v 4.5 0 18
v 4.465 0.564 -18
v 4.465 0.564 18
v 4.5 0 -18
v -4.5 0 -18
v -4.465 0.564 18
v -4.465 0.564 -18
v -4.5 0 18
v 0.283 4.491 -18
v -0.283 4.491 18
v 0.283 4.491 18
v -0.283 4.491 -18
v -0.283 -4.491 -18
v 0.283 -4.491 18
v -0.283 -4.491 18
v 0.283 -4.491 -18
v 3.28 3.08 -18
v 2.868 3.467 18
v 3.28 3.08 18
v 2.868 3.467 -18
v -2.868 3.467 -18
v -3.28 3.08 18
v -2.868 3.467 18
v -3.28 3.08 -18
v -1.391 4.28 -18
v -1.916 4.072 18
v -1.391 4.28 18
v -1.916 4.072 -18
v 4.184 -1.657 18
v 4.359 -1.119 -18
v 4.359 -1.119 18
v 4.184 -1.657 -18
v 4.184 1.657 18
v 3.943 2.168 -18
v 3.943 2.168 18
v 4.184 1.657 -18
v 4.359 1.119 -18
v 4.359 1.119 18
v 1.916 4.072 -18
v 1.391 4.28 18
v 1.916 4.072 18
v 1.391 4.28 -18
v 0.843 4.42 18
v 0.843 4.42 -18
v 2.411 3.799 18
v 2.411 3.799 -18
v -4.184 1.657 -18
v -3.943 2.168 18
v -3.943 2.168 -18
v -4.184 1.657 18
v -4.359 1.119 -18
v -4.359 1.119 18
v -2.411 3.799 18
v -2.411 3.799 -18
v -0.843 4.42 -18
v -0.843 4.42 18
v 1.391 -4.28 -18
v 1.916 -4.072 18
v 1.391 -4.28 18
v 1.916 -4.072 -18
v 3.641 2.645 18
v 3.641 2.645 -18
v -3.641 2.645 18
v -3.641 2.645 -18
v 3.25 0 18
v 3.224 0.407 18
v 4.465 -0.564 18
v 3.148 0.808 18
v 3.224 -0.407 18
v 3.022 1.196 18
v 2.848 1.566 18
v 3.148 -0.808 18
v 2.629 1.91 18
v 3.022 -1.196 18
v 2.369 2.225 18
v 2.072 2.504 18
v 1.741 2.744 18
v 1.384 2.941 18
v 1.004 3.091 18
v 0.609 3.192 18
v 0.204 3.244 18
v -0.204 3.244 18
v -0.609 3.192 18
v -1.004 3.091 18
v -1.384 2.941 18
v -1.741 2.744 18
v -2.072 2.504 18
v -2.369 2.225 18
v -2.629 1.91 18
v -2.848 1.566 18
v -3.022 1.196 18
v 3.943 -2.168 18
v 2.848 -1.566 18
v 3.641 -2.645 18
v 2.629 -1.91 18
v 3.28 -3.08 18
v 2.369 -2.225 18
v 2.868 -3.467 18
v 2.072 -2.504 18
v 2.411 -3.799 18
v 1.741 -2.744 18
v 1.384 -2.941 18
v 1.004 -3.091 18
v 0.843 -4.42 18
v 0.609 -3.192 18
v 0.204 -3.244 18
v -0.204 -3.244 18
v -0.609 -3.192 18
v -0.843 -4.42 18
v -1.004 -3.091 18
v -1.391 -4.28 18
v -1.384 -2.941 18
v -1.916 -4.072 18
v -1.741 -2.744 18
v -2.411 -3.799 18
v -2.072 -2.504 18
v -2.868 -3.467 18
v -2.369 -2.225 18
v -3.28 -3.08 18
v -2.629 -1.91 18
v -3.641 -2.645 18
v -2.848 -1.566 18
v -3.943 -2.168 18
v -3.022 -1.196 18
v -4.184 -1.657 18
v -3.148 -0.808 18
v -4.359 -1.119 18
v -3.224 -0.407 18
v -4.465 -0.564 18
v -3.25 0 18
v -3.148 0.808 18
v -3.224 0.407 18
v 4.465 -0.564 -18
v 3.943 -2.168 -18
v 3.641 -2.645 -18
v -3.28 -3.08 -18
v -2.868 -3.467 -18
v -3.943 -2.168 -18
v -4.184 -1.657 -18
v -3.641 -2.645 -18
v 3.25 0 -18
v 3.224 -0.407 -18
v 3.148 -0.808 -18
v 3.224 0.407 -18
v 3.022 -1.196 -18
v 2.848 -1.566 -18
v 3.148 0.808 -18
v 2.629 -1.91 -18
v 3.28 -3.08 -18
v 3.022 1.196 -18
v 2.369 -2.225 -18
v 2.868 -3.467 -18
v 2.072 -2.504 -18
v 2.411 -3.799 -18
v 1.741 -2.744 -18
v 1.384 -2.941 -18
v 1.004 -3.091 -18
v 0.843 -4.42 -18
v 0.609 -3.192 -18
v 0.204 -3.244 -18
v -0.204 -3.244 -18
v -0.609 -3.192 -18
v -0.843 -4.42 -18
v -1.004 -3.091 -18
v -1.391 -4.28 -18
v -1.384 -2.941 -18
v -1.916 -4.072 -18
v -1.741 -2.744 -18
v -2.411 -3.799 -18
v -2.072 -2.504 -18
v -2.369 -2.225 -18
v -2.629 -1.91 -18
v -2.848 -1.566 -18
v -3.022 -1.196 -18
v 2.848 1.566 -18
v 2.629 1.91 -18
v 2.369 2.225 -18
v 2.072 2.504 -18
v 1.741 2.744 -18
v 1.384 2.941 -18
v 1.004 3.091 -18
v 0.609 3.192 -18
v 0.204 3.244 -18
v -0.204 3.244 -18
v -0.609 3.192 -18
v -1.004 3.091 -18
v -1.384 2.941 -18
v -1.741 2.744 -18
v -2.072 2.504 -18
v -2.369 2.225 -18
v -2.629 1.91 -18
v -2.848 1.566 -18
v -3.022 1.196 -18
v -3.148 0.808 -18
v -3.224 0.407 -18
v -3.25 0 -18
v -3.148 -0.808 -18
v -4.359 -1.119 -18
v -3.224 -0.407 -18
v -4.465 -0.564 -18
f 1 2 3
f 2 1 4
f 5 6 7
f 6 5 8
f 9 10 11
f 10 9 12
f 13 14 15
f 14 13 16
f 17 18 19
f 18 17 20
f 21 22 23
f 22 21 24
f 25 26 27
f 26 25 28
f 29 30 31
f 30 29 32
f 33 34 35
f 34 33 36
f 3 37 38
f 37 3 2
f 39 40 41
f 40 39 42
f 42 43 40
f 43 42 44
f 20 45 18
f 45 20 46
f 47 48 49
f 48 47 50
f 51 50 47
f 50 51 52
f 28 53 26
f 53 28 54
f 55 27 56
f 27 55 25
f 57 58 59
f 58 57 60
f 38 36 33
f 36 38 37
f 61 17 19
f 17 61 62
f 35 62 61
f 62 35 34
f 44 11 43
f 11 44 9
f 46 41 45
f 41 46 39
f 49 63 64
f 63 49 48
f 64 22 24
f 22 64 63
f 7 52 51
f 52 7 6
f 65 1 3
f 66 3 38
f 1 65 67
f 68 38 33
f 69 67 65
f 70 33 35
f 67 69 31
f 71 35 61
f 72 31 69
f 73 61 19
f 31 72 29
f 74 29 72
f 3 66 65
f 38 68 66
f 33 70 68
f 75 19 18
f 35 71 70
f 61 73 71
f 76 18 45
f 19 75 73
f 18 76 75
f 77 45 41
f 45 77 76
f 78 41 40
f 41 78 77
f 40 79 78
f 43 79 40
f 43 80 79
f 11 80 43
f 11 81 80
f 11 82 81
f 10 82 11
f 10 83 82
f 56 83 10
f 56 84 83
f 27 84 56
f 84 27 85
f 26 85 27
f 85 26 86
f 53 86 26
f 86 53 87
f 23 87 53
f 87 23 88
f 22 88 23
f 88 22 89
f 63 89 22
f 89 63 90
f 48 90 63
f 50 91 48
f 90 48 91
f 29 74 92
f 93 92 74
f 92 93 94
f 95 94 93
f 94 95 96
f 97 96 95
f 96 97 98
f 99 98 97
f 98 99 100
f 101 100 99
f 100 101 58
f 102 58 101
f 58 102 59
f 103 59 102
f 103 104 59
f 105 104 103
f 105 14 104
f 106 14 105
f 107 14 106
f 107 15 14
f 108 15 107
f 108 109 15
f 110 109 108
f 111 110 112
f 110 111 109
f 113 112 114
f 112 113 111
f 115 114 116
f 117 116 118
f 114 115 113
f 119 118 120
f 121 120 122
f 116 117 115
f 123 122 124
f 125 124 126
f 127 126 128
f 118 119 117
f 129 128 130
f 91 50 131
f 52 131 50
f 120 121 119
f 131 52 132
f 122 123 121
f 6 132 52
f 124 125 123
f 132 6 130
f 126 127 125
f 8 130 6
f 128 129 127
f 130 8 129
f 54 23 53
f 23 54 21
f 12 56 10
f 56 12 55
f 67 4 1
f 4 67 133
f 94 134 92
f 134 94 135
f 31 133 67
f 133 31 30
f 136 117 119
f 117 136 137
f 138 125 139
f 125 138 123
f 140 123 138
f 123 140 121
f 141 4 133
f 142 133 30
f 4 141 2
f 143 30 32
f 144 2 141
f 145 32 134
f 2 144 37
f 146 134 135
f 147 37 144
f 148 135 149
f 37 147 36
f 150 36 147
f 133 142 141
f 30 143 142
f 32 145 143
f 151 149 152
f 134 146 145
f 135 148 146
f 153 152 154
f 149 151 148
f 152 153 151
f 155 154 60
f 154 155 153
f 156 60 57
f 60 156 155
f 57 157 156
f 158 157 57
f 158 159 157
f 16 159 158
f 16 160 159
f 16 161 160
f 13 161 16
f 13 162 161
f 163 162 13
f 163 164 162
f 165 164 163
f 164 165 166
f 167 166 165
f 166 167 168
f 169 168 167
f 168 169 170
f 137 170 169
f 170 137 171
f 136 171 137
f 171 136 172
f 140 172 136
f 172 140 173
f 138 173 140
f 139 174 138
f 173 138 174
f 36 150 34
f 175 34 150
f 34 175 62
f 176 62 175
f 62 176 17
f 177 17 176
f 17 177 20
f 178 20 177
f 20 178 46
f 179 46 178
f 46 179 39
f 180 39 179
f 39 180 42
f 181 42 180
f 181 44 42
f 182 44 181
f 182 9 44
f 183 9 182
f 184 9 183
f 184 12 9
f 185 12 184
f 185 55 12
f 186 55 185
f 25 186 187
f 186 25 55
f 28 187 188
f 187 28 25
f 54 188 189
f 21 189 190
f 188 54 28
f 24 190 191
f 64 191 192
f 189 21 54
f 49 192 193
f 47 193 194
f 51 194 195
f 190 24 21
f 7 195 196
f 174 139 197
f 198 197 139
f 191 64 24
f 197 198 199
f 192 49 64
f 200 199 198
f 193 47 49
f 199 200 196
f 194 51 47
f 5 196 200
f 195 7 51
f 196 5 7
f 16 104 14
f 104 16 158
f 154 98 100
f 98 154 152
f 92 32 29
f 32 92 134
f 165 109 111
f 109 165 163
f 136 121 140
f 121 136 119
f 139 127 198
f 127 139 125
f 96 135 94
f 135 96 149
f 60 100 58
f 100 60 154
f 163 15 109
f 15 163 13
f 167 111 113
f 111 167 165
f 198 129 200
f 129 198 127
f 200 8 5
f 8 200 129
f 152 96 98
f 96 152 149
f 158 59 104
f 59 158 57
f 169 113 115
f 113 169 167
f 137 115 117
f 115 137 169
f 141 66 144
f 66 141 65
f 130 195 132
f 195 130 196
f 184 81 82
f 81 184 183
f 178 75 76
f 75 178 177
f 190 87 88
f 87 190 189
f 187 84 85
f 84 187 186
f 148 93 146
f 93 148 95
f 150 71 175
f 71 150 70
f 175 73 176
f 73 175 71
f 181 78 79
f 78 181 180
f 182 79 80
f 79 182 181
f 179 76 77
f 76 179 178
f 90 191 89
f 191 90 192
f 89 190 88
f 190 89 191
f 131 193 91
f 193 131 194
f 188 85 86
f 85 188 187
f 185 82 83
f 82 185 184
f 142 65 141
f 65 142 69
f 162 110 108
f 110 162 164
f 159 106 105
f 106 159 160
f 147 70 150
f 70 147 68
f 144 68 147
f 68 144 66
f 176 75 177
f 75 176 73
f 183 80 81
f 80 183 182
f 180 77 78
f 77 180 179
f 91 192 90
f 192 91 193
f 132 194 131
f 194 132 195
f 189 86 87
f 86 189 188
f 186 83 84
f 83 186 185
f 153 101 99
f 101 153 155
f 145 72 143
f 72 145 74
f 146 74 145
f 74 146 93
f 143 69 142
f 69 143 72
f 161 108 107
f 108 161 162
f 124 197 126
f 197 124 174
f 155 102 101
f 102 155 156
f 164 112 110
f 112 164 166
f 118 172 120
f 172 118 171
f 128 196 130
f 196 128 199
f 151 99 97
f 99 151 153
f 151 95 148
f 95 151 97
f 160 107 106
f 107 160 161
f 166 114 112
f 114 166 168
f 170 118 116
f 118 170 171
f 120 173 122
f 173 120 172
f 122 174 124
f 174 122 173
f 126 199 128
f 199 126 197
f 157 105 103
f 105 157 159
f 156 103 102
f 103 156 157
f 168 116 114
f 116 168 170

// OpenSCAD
$fn = 50;


difference() {
	union() {
		translate(v = [0, 0, -18.0000000000]) {
			cylinder(h = 36, r = 4.5000000000);
		}
	}
	union() {
		translate(v = [0, 0, -100.0000000000]) {
			cylinder(h = 200, r = 3.2500000000);
		}
	}
}
